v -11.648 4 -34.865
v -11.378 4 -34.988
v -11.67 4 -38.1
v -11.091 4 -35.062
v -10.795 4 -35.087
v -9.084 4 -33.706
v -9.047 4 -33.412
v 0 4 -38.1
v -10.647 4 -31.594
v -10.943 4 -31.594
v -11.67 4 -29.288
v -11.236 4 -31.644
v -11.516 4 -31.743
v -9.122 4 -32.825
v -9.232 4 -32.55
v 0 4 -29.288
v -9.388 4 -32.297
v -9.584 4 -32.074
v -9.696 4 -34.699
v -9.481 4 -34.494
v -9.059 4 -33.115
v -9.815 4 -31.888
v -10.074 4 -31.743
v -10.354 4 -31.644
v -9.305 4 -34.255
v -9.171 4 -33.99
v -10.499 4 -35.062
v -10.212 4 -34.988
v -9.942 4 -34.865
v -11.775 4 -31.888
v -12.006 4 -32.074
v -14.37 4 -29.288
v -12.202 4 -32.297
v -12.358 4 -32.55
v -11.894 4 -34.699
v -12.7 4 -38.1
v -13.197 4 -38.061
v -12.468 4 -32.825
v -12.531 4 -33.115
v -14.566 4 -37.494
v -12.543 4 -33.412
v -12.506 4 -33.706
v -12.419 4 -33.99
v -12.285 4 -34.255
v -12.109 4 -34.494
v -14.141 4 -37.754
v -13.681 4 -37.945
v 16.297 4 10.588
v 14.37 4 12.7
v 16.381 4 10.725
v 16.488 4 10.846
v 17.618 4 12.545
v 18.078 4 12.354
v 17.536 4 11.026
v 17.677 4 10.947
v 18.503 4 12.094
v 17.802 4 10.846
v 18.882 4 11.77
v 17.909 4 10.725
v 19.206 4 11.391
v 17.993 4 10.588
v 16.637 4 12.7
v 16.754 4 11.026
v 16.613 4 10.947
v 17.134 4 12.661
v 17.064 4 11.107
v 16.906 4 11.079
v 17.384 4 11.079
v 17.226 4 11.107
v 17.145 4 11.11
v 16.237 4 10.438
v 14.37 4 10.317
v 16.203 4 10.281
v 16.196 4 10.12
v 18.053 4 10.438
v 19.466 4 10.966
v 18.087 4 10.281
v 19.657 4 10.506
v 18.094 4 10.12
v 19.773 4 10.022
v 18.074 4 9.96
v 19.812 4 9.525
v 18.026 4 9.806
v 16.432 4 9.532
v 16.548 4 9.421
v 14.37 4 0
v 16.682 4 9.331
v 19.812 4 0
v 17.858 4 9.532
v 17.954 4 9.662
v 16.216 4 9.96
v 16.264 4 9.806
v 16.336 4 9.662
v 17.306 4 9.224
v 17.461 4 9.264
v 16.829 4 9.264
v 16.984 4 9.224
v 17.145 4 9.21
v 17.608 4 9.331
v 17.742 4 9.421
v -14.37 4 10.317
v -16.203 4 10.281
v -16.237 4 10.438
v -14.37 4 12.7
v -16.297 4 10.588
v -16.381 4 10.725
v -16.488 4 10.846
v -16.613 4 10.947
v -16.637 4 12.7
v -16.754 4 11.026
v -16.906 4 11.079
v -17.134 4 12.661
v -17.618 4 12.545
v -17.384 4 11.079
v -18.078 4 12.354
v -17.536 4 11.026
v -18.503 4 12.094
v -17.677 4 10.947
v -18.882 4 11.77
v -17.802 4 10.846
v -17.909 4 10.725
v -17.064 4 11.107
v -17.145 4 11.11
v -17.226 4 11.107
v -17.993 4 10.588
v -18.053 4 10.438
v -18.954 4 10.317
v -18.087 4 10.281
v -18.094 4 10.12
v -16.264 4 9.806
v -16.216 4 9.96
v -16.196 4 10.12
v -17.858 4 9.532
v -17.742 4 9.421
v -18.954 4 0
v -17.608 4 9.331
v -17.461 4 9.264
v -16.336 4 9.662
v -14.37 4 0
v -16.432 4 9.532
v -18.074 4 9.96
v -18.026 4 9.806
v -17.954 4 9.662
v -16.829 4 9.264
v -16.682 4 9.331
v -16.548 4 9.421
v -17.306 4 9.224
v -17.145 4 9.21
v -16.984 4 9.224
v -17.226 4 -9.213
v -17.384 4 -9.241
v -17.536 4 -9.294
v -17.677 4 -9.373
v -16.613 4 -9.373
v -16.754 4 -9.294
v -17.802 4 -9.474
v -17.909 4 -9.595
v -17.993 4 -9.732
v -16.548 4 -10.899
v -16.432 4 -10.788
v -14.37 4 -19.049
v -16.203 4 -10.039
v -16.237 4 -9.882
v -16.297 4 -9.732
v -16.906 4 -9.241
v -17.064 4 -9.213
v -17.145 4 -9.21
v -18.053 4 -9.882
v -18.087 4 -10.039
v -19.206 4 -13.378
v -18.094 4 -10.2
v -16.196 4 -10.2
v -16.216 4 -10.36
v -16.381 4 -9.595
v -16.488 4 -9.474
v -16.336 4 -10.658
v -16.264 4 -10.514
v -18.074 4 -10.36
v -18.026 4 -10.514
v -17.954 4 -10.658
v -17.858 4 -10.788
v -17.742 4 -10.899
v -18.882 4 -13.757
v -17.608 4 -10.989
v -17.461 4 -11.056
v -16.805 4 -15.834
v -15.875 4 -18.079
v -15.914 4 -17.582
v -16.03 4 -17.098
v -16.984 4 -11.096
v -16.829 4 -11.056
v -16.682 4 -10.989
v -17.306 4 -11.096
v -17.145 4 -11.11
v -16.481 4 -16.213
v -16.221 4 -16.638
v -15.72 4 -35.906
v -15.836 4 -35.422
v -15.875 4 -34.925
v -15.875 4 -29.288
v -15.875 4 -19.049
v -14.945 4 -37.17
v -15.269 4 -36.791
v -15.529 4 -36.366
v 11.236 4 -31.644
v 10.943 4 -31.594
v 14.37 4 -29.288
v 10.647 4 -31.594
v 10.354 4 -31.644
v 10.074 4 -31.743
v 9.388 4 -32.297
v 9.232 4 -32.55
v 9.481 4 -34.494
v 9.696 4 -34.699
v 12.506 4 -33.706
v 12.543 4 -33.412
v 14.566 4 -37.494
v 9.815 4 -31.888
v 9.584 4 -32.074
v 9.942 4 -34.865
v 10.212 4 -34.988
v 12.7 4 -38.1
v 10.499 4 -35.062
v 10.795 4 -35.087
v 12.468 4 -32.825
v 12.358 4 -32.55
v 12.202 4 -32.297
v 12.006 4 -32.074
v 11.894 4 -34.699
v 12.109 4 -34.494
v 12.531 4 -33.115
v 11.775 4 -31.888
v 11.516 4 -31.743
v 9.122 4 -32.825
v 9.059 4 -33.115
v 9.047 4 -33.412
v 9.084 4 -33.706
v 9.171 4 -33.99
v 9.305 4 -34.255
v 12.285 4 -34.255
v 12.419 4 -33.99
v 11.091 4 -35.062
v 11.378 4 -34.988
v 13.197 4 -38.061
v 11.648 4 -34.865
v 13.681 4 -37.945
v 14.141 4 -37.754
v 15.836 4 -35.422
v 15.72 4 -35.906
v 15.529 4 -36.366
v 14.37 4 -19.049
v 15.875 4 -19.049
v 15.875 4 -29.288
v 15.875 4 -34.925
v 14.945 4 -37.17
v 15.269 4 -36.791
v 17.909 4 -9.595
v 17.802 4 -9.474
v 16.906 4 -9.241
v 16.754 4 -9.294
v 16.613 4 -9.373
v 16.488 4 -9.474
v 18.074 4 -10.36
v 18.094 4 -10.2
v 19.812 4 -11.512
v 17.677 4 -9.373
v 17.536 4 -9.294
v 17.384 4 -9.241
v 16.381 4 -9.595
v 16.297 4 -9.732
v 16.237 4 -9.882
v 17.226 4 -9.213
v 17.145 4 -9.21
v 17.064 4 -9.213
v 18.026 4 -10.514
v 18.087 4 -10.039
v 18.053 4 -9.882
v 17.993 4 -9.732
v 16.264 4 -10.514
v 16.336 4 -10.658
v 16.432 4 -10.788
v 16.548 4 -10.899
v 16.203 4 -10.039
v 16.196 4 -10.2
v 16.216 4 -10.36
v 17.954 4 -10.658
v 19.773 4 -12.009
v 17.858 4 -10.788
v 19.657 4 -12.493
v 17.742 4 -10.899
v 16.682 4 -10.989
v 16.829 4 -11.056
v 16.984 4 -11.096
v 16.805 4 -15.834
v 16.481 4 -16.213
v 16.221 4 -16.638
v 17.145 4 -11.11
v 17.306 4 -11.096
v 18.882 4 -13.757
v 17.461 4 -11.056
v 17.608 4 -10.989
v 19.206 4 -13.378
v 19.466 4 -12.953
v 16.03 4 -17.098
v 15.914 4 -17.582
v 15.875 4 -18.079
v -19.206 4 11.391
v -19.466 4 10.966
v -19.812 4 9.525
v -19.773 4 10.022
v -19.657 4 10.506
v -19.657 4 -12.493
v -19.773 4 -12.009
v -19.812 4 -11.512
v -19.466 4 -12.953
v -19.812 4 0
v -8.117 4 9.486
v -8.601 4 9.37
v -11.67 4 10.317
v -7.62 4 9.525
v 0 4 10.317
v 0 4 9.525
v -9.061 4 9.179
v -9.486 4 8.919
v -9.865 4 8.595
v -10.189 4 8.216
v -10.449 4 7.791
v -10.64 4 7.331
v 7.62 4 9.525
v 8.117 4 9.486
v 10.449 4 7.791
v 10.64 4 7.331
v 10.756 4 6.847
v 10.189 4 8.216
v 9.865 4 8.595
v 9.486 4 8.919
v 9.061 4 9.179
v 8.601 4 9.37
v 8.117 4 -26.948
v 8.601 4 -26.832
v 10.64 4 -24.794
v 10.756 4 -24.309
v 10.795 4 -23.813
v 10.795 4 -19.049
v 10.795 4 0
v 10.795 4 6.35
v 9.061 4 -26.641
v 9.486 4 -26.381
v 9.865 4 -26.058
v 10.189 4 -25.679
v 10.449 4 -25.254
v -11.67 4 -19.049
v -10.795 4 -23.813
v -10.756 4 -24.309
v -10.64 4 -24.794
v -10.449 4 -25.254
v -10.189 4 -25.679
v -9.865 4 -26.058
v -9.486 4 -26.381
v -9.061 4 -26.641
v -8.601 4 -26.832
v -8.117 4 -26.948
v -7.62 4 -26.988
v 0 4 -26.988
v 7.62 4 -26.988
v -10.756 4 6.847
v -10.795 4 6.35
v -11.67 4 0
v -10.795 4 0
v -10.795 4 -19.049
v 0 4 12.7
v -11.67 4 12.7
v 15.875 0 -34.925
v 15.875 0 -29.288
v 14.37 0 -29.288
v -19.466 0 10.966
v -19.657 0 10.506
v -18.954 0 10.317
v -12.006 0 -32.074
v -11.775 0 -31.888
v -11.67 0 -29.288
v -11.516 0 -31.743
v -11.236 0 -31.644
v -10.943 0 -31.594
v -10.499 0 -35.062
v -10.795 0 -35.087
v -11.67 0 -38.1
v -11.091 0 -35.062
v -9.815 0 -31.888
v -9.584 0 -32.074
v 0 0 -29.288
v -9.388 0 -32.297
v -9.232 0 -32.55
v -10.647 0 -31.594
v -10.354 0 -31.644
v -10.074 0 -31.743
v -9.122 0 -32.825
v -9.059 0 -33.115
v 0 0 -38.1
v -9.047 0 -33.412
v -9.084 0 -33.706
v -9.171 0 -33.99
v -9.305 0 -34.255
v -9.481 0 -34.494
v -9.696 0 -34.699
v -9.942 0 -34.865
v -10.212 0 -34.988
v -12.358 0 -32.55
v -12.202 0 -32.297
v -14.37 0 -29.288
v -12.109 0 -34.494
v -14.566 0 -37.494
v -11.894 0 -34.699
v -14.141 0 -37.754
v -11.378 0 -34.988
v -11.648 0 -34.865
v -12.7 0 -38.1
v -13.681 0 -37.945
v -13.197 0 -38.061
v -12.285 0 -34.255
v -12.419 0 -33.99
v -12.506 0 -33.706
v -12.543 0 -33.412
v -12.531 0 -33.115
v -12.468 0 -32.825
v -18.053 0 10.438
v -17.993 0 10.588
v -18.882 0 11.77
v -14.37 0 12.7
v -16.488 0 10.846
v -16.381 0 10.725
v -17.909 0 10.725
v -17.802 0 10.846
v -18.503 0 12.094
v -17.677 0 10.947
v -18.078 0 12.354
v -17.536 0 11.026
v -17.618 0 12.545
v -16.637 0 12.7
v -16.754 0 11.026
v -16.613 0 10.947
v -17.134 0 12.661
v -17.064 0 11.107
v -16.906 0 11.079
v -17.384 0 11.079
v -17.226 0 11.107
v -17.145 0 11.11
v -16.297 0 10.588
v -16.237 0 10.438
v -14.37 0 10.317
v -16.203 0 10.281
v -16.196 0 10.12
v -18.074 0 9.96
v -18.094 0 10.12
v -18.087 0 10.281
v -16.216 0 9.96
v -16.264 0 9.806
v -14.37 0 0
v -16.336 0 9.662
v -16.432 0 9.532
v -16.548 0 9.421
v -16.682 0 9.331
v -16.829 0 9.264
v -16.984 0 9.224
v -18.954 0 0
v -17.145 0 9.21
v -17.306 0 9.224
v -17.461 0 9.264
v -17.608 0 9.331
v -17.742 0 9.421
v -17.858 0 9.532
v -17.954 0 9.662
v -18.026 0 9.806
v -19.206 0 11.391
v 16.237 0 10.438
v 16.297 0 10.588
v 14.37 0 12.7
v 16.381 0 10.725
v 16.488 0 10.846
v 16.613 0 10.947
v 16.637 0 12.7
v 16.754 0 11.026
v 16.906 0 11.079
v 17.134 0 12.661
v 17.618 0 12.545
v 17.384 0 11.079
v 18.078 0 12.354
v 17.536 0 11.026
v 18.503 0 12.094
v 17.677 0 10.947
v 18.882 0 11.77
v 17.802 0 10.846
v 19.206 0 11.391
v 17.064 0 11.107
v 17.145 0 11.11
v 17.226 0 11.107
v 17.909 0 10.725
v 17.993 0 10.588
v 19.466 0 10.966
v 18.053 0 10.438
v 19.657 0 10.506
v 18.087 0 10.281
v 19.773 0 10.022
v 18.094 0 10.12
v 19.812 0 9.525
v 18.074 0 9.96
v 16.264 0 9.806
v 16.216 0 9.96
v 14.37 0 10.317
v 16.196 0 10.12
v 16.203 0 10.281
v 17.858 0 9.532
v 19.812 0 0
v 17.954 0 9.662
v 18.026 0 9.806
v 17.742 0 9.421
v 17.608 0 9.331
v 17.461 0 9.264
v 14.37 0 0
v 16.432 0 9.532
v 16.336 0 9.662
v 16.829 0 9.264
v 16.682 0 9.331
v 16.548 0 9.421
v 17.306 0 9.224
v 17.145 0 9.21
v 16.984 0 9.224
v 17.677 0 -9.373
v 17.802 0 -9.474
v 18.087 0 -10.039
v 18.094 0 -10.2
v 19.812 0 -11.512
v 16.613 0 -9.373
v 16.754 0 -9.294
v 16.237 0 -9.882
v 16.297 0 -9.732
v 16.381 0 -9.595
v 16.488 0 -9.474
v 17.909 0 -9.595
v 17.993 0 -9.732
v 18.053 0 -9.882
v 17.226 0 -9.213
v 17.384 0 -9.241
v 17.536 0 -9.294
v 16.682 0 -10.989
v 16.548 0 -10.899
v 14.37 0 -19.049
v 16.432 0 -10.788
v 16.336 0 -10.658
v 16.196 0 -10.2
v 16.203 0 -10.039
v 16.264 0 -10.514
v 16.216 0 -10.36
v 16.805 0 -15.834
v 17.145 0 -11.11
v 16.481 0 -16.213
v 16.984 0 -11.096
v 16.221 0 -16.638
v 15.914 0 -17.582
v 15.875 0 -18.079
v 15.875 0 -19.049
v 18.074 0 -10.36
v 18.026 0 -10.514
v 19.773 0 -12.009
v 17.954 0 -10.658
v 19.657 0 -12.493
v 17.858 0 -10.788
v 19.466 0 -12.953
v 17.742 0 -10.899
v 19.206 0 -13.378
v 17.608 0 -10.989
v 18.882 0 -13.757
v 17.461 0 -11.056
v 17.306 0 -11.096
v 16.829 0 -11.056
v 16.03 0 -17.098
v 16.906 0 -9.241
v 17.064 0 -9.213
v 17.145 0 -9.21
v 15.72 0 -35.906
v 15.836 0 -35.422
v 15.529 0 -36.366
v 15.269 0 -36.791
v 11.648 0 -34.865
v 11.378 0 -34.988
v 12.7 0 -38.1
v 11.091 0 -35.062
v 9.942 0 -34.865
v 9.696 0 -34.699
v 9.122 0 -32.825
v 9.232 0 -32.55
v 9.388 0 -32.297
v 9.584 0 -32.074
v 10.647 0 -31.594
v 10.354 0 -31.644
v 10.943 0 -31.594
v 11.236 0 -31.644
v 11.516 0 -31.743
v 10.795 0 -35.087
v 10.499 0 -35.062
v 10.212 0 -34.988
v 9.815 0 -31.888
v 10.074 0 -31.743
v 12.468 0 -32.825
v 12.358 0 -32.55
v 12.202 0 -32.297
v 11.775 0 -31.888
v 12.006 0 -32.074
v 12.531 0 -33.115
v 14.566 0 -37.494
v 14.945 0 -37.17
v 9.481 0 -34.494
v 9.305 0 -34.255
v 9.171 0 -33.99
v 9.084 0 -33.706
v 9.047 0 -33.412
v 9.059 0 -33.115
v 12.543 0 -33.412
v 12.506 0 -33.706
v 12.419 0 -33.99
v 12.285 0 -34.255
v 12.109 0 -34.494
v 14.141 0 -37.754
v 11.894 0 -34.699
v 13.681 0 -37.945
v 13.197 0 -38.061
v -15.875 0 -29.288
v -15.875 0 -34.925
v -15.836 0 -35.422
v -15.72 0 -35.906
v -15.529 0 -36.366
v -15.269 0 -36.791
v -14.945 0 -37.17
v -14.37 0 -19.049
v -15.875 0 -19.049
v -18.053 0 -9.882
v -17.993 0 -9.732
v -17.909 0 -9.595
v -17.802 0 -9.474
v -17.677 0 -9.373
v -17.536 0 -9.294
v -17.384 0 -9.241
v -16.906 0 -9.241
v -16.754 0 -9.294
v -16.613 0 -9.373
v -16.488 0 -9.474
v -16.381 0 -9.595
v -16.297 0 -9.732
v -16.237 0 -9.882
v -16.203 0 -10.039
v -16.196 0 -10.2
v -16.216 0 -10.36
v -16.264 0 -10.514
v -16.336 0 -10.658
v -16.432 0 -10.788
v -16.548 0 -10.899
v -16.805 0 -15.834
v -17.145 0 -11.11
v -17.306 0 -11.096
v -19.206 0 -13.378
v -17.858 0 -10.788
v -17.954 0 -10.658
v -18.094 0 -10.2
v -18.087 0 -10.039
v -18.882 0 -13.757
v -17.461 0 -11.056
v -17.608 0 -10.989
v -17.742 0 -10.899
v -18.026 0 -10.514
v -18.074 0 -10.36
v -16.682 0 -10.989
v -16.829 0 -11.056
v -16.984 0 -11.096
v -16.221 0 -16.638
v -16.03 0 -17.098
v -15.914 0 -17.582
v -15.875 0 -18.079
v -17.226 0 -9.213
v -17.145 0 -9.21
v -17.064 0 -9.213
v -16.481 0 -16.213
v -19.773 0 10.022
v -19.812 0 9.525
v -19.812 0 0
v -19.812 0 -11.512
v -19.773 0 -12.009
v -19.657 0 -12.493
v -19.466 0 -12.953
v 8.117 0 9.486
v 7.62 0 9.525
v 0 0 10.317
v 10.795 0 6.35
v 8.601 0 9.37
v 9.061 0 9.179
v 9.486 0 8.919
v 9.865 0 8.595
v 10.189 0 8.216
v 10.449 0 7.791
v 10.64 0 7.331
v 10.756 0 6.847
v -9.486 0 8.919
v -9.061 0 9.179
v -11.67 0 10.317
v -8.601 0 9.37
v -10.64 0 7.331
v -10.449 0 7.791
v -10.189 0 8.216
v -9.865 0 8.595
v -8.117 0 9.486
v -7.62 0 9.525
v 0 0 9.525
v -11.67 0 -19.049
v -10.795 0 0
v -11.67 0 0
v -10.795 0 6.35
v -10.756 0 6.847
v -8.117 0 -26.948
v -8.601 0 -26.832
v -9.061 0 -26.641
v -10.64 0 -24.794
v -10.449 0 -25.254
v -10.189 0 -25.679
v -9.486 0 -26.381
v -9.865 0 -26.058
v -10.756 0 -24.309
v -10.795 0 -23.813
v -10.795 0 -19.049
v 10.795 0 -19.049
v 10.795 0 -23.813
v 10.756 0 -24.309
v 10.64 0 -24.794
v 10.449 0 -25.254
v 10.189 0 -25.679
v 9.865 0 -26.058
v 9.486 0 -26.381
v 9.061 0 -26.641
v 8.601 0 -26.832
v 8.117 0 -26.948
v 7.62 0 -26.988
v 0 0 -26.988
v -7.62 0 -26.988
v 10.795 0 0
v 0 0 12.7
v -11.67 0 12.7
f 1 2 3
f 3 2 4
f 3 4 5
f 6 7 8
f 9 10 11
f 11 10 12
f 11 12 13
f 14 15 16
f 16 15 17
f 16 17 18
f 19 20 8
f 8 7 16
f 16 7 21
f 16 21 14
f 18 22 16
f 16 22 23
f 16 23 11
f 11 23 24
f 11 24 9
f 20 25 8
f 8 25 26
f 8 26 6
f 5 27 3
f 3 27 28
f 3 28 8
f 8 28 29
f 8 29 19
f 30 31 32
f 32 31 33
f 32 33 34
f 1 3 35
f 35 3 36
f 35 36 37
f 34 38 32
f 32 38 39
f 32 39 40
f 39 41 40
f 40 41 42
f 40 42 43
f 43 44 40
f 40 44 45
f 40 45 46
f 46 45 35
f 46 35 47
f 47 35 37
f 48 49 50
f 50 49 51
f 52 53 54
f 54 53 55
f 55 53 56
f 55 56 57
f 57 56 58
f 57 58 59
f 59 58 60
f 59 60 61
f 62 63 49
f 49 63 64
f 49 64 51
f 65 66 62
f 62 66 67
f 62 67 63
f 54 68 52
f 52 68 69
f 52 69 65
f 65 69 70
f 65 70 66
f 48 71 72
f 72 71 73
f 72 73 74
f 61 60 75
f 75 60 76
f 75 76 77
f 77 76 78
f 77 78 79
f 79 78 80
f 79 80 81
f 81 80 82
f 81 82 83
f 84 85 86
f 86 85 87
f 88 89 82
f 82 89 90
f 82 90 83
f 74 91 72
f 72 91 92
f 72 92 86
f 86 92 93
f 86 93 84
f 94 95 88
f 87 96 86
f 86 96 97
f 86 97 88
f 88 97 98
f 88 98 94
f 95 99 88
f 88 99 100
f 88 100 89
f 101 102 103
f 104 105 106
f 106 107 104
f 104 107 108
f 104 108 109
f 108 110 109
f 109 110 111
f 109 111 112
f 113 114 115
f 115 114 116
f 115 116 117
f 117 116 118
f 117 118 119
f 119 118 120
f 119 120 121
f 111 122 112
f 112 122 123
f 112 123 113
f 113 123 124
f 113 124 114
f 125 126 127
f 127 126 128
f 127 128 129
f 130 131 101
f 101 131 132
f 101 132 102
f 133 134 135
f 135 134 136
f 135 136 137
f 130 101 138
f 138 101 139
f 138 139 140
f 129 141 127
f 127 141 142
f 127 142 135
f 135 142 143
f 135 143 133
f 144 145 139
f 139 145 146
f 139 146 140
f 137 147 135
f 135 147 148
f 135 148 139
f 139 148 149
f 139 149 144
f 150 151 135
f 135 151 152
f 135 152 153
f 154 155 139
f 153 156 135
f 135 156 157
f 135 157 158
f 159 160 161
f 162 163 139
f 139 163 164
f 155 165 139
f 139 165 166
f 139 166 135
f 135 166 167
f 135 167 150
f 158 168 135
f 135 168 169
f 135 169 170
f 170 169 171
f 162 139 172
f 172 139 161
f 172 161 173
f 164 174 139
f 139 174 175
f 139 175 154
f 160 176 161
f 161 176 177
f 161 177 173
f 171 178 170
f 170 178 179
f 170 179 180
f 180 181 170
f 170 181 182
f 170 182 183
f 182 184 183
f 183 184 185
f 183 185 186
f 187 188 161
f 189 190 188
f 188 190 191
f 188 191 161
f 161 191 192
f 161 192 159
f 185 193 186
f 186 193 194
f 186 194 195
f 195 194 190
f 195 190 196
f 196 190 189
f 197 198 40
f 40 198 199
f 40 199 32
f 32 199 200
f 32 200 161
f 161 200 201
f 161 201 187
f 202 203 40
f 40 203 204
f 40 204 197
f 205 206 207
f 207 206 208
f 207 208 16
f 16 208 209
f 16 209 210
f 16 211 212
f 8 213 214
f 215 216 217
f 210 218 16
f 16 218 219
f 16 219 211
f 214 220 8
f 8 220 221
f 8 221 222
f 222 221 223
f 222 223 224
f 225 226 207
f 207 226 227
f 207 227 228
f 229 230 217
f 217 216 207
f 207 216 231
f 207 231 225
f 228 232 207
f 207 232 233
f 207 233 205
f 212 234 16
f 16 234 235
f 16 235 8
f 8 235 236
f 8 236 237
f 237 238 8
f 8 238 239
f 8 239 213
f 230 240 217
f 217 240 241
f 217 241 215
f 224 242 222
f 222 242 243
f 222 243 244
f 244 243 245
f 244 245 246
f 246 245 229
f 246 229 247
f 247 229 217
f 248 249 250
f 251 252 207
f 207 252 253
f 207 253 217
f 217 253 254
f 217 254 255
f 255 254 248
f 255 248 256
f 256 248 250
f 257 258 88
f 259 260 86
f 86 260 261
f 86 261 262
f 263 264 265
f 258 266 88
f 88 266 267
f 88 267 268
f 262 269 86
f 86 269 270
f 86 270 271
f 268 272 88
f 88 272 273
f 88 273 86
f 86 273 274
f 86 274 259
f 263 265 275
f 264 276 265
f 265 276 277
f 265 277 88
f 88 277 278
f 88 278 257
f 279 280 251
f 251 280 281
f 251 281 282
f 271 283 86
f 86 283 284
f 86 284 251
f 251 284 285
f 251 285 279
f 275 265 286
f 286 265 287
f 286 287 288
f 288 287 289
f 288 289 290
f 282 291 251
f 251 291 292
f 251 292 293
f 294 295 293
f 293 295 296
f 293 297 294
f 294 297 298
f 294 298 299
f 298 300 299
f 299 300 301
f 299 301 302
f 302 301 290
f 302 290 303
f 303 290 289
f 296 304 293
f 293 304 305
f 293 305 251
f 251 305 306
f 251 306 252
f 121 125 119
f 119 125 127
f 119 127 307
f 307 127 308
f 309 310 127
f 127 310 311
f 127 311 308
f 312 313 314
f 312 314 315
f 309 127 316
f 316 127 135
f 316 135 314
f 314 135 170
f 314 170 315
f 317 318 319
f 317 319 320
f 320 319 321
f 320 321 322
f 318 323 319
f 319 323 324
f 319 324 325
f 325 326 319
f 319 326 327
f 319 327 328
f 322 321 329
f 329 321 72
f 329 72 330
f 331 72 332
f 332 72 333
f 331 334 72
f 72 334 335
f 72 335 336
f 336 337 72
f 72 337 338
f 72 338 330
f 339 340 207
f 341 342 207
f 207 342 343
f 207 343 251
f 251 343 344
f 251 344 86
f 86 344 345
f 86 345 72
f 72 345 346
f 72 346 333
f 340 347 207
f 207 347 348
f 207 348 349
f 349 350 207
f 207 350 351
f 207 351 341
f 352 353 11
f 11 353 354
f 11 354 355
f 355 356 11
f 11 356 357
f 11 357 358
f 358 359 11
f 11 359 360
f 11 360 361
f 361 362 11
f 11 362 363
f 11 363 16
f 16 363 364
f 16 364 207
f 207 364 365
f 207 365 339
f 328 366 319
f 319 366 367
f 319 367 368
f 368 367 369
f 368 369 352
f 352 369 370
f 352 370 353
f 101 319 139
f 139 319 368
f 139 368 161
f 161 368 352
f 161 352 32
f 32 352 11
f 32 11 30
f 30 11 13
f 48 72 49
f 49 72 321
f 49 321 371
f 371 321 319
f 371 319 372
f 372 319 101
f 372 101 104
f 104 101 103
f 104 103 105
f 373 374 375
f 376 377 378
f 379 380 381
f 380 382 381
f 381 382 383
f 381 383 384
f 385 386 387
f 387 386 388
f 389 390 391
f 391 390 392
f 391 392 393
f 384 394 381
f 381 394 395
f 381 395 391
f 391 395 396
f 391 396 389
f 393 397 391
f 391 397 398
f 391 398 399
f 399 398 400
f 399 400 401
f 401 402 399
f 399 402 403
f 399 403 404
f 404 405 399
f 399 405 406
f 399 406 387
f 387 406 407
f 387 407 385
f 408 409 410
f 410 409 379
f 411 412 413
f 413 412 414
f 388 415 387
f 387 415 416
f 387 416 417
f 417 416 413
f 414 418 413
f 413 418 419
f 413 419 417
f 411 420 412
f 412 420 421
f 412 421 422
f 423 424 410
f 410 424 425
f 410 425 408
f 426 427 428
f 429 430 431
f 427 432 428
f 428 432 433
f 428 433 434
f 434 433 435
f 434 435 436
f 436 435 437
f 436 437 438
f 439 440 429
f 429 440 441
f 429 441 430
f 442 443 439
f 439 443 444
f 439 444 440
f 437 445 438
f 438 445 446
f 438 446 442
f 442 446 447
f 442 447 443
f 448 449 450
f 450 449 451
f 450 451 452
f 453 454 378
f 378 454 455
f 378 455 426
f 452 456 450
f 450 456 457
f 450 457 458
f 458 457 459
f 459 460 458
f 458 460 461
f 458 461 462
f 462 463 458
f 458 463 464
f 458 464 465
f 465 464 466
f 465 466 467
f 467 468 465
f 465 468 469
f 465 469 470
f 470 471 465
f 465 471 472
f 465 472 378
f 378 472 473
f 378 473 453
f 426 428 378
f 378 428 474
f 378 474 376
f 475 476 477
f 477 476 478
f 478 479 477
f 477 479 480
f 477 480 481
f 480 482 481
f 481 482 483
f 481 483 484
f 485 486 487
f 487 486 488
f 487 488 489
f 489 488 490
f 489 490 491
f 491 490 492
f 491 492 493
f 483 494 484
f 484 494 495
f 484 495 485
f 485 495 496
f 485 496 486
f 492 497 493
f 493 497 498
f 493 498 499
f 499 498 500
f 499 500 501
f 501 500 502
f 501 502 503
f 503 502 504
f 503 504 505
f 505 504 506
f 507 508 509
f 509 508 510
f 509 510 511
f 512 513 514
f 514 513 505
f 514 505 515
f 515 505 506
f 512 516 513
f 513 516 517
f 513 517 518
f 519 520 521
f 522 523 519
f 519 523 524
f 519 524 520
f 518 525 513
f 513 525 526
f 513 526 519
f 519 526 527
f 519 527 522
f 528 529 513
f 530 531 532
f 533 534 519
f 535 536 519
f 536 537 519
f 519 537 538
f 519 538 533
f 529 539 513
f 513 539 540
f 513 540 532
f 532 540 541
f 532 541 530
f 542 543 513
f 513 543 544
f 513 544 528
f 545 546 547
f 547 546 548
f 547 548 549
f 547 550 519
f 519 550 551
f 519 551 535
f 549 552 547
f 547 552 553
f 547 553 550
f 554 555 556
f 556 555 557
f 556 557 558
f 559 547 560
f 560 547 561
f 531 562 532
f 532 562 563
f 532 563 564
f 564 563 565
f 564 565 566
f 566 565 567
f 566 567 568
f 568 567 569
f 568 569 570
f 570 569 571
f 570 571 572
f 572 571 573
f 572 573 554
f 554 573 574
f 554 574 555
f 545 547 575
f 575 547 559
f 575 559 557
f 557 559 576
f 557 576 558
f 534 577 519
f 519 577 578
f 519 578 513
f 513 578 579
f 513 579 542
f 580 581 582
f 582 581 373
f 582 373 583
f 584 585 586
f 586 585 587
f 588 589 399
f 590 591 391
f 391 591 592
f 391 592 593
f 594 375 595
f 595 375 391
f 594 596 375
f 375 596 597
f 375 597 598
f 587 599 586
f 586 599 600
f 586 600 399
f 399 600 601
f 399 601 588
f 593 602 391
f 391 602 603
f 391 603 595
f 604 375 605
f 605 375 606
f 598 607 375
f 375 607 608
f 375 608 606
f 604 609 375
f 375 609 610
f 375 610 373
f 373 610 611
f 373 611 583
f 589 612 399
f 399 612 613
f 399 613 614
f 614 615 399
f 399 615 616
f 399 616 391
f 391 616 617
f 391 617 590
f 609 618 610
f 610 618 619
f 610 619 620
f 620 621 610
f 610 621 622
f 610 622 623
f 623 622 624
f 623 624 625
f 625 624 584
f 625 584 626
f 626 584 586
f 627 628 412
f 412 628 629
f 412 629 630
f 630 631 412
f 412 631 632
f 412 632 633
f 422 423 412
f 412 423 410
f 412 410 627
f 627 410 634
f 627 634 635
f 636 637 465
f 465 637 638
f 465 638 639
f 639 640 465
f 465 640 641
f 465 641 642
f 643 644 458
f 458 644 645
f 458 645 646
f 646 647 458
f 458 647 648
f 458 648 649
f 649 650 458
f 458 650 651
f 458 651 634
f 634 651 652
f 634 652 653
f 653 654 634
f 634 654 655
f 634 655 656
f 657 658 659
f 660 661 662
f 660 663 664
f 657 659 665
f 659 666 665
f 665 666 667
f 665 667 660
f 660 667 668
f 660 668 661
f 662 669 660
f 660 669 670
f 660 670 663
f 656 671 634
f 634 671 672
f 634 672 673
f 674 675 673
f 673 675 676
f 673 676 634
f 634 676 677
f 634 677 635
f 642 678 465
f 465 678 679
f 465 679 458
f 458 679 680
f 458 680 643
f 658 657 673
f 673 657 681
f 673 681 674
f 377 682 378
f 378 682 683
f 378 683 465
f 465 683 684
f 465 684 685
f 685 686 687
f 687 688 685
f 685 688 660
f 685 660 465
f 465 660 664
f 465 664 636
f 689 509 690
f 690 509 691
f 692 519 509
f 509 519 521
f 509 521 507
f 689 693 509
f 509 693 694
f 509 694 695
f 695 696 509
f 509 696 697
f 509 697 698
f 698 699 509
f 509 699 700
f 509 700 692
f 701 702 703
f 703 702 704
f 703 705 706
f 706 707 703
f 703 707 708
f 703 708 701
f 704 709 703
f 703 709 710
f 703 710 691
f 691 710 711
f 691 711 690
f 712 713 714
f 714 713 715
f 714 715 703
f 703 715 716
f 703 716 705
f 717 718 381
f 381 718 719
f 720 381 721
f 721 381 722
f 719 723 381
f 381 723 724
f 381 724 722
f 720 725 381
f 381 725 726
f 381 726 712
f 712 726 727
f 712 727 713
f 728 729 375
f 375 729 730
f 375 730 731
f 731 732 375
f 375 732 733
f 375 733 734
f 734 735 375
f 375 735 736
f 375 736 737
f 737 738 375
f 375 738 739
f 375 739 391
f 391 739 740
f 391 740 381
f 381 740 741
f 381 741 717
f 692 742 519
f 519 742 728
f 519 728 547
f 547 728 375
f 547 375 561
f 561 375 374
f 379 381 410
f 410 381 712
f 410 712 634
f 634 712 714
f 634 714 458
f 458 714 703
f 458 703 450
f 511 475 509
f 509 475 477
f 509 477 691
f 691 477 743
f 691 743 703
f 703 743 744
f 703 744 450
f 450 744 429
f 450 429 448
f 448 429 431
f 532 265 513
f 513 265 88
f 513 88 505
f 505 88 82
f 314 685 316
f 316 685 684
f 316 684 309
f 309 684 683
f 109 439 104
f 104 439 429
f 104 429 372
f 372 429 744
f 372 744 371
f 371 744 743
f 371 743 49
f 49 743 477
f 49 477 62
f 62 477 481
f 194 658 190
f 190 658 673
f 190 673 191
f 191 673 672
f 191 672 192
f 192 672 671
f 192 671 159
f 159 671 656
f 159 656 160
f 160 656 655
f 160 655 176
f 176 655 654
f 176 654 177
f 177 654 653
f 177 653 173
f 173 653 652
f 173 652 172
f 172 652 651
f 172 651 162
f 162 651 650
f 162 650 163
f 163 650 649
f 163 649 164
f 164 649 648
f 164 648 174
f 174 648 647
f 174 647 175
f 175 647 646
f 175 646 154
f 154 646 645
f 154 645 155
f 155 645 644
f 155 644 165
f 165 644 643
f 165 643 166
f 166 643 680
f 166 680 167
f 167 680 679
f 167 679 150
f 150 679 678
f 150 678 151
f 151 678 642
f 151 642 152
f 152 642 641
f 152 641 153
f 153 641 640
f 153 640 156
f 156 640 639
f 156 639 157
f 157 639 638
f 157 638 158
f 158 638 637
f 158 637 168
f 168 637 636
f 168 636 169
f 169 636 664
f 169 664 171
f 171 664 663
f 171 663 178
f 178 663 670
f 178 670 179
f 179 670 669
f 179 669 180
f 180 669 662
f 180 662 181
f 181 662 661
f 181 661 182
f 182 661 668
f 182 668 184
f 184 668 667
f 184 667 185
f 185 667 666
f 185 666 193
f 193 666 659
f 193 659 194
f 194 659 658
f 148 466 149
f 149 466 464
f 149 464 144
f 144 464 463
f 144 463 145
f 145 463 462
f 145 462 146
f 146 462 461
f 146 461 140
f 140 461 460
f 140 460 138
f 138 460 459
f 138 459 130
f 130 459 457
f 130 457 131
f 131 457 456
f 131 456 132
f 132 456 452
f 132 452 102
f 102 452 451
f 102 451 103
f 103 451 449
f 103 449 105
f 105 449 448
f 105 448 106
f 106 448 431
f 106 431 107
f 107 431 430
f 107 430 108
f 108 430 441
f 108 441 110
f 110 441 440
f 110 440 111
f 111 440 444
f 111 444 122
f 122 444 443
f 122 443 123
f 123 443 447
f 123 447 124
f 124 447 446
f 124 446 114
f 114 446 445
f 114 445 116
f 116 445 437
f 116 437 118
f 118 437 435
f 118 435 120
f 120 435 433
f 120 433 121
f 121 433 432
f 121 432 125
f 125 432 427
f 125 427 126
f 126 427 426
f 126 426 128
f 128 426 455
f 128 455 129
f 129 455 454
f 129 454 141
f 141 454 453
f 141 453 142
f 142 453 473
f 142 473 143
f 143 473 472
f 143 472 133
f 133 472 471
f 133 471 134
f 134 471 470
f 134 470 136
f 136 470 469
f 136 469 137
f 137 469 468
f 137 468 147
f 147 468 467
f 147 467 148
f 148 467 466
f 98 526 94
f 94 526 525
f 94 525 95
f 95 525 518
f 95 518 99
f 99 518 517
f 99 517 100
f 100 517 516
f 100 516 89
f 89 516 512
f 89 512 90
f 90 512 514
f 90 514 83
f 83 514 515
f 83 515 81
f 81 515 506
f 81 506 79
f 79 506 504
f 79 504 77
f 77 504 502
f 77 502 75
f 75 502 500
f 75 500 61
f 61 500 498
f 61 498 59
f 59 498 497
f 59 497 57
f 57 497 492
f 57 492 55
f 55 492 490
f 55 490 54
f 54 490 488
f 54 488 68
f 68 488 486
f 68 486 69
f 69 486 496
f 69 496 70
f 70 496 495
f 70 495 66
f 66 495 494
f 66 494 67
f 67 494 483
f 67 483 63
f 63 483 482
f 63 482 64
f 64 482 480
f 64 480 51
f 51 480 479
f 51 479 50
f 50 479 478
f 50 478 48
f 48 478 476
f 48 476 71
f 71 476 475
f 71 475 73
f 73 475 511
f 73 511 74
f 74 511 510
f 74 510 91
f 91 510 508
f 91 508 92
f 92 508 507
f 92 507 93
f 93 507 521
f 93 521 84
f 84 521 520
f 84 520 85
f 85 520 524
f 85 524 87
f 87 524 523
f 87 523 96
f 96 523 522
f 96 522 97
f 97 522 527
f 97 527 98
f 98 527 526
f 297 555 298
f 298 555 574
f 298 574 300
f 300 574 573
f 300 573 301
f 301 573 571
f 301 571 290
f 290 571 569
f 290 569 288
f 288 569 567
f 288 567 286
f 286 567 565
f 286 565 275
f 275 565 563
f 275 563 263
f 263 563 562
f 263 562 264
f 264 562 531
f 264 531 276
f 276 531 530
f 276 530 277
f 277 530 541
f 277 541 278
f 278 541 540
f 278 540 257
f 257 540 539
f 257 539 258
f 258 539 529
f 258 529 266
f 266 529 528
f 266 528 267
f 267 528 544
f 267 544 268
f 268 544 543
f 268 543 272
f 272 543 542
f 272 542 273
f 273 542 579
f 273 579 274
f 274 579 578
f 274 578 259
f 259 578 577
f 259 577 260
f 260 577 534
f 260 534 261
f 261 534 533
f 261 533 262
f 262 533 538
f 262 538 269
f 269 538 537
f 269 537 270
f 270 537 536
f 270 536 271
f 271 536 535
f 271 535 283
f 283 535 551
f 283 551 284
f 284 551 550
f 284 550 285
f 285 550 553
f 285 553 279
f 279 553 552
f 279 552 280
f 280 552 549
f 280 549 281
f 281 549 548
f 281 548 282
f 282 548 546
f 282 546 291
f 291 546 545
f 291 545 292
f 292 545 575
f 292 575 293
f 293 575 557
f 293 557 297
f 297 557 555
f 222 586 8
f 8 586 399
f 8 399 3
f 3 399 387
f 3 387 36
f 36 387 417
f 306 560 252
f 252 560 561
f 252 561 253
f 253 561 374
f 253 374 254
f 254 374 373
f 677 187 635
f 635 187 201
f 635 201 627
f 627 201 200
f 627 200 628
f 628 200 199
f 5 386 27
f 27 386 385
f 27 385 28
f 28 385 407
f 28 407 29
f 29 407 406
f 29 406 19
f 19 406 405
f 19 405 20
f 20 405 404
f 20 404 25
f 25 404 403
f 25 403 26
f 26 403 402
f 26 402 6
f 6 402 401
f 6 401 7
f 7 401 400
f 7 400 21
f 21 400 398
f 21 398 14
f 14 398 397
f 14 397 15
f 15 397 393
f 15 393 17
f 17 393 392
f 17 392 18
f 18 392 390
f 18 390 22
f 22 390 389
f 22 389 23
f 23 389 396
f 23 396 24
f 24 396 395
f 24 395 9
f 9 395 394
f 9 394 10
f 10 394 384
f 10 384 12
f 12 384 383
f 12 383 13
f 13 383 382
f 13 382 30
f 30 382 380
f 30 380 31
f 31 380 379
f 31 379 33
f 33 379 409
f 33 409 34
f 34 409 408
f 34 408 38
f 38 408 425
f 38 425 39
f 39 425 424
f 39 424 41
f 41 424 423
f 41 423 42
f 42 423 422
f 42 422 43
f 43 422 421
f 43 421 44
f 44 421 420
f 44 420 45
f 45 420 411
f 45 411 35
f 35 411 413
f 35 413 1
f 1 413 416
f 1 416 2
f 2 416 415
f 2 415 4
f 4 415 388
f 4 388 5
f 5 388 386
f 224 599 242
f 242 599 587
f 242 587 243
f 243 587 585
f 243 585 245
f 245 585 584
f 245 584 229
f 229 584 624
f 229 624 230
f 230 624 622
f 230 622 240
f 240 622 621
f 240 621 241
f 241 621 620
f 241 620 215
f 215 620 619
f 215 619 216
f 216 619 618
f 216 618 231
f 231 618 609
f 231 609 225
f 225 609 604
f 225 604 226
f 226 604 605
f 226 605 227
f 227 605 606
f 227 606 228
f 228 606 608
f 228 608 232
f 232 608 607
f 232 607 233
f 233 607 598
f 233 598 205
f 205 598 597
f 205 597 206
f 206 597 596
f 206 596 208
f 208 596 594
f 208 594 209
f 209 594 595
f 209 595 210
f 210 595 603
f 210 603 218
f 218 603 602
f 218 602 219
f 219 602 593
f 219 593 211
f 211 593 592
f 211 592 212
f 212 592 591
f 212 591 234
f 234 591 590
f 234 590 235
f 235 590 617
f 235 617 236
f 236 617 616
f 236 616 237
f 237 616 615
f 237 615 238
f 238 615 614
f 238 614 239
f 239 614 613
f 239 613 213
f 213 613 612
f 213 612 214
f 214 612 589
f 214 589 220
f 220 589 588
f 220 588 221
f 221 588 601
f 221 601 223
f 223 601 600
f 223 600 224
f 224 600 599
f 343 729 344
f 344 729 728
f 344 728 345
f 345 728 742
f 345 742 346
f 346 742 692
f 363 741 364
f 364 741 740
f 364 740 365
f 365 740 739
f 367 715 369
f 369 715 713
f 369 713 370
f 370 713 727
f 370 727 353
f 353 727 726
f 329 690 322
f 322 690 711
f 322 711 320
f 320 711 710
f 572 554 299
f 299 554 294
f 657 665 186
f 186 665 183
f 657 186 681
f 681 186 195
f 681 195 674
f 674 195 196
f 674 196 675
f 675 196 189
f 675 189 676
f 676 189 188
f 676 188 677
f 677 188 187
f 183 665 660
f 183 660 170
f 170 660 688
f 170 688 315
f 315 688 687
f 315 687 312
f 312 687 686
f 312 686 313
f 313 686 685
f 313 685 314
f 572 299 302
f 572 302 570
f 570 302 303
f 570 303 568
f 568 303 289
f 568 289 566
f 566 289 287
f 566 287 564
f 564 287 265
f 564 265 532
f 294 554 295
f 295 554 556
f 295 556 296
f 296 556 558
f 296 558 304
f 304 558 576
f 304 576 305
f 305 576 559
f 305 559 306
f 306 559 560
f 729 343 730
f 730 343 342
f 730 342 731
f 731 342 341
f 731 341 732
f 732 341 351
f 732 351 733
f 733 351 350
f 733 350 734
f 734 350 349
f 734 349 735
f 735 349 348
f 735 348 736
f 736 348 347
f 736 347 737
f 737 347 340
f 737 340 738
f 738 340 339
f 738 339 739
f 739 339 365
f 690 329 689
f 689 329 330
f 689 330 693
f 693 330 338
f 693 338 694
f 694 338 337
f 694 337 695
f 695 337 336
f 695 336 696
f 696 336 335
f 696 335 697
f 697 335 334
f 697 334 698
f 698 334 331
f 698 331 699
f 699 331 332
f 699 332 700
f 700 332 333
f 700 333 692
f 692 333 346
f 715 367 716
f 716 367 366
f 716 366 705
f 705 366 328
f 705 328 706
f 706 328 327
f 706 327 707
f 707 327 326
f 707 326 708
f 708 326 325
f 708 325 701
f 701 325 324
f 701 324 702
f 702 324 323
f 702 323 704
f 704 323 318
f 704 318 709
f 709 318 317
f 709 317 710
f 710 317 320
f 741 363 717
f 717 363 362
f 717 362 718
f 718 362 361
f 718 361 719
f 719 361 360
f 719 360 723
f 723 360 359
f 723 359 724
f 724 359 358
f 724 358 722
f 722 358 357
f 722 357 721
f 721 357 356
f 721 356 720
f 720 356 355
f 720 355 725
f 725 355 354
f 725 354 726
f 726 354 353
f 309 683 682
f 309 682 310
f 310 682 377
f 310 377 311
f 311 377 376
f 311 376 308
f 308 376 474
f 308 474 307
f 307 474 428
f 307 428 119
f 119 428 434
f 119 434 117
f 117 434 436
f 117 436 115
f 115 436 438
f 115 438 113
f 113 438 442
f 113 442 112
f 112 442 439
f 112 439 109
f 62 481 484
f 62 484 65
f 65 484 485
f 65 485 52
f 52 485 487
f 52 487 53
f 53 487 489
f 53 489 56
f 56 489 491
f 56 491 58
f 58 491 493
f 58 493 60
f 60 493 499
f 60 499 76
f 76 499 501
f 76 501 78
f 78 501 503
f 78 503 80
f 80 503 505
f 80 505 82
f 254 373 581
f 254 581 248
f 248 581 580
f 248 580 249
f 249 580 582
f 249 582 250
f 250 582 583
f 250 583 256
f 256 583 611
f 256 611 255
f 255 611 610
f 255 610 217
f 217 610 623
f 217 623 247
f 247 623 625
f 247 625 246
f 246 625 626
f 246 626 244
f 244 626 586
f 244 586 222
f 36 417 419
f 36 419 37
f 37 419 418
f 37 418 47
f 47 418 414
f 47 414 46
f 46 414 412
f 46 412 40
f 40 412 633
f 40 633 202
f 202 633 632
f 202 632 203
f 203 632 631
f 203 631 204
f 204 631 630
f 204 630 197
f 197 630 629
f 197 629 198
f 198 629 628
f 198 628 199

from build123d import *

# Parameters (mm, degrees)
SKETCH1_W           = 39.624
SKETCH1_H           = 25.4
SKETCH1_R           = 0.95
BOSS_EXTRUDE1_DEPTH = 4
SKETCH3_W           = 31.75
SKETCH3_H           = 25.4
SKETCH3_R           = 1.75
BOSS_EXTRUDE2_DEPTH = 4
SKETCH5_W           = 21.59
SKETCH5_H           = 36.5125
CUT_EXTRUDE2_DEPTH  = 44.129170453
CHAMFER1_SIZE       = 4.064
FILLET2_R           = 3.175


with BuildPart() as part:
    # Sketch1 → Boss-Extrude1 (new body)
    with BuildSketch(Plane(origin=(0, 0, 0), x_dir=(1, 0, 0), z_dir=(0, 1, 0))):
        Rectangle(SKETCH1_W, SKETCH1_H)
        with Locations(Location((-17.145, 10.16, 0), (0, 0, 270))):
            Circle(SKETCH1_R, mode=Mode.SUBTRACT)
        with Locations(Location((-17.145, -10.16, 0), (0, 0, 270))):
            Circle(SKETCH1_R, mode=Mode.SUBTRACT)
        with Locations(Location((17.145, -10.16, 0), (0, 0, 270))):
            Circle(SKETCH1_R, mode=Mode.SUBTRACT)
        with Locations(Location((17.145, 10.16, 0), (0, 0, 270))):
            Circle(SKETCH1_R, mode=Mode.SUBTRACT)
    extrude(amount=BOSS_EXTRUDE1_DEPTH)

    # Sketch3 → Boss-Extrude2 (add)
    with BuildSketch(Plane.XZ):
        with Locations((0, -25.4)):
            Rectangle(SKETCH3_W, SKETCH3_H)
        with Locations(Location((-10.795, -33.3375, 0), (0, 0, 270))):
            Circle(SKETCH3_R, mode=Mode.SUBTRACT)
        with Locations(Location((10.795, -33.3375, 0), (0, 0, 270))):
            Circle(SKETCH3_R, mode=Mode.SUBTRACT)
    extrude(amount=-BOSS_EXTRUDE2_DEPTH)

    # Sketch5 → Cut-Extrude2 (cut, through all)
    with BuildSketch(Plane.XZ):
        with Locations((0, -8.73125)):
            Rectangle(SKETCH5_W, SKETCH5_H)
    extrude(amount=-CUT_EXTRUDE2_DEPTH, mode=Mode.SUBTRACT)

    # Chamfer1
    # the kernel refuses this chamfer: 4.064 mm, written as the material it adds along each edge
    with BuildSketch(Plane(origin=(15.875, 0, -12.7), x_dir=(0.9996219169112968, 0, 0.027495876610586435), z_dir=(0, 1, 0))) as chamfer1_piece_1_section:
        Polygon((CHAMFER1_SIZE * 0.999621916911, CHAMFER1_SIZE * 0.0274958766106), (-CHAMFER1_SIZE * 0.0274958766106, CHAMFER1_SIZE * 0.999621916911), (0, 0), align=None)
    chamfer1_piece_1 = extrude(amount=4, mode=Mode.PRIVATE)
    chamfer1_piece_1 = split(chamfer1_piece_1, bisect_by=Plane(origin=(19.812, 2, -14.047586344), z_dir=(-1, 0, 0)), keep=Keep.TOP, mode=Mode.PRIVATE)
    add(chamfer1_piece_1)
    with BuildSketch(Plane(origin=(-15.875, 0, -12.7), x_dir=(-0.9996219169112968, 0, 0.027495876610586455), z_dir=(0, 1, 0))) as chamfer1_piece_2_section:
        Polygon((CHAMFER1_SIZE * 0.999621916911, -CHAMFER1_SIZE * 0.0274958766106), (-CHAMFER1_SIZE * 0.0274958766106, -CHAMFER1_SIZE * 0.999621916911), (0, 0), align=None)
    chamfer1_piece_2 = extrude(amount=4, mode=Mode.PRIVATE)
    chamfer1_piece_2 = split(chamfer1_piece_2, bisect_by=Plane(origin=(-19.812, 2, -14.047586344), z_dir=(1, 0, 0)), keep=Keep.TOP, mode=Mode.PRIVATE)
    add(chamfer1_piece_2)

    # Fillet2
    fillet2_edges = [part.edges().sort_by_distance(p)[0] for p in [
        (15.875, 2, -38.1),
        (-15.875, 2, -38.1),
        (10.795, 2, 9.525),
        (10.795, 2, -26.9875),
        (-10.795, 2, -26.9875),
        (-10.795, 2, 9.525),
        (15.875, 2, -16.764),
        (-15.875, 2, -16.764),
        (19.812, 2, -12.827),
        (-19.812, 2, -12.827),
        (19.812, 2, 12.7),
        (-19.812, 2, 12.7),
    ]]
    fillet(fillet2_edges, radius=FILLET2_R)


solid = part.part
